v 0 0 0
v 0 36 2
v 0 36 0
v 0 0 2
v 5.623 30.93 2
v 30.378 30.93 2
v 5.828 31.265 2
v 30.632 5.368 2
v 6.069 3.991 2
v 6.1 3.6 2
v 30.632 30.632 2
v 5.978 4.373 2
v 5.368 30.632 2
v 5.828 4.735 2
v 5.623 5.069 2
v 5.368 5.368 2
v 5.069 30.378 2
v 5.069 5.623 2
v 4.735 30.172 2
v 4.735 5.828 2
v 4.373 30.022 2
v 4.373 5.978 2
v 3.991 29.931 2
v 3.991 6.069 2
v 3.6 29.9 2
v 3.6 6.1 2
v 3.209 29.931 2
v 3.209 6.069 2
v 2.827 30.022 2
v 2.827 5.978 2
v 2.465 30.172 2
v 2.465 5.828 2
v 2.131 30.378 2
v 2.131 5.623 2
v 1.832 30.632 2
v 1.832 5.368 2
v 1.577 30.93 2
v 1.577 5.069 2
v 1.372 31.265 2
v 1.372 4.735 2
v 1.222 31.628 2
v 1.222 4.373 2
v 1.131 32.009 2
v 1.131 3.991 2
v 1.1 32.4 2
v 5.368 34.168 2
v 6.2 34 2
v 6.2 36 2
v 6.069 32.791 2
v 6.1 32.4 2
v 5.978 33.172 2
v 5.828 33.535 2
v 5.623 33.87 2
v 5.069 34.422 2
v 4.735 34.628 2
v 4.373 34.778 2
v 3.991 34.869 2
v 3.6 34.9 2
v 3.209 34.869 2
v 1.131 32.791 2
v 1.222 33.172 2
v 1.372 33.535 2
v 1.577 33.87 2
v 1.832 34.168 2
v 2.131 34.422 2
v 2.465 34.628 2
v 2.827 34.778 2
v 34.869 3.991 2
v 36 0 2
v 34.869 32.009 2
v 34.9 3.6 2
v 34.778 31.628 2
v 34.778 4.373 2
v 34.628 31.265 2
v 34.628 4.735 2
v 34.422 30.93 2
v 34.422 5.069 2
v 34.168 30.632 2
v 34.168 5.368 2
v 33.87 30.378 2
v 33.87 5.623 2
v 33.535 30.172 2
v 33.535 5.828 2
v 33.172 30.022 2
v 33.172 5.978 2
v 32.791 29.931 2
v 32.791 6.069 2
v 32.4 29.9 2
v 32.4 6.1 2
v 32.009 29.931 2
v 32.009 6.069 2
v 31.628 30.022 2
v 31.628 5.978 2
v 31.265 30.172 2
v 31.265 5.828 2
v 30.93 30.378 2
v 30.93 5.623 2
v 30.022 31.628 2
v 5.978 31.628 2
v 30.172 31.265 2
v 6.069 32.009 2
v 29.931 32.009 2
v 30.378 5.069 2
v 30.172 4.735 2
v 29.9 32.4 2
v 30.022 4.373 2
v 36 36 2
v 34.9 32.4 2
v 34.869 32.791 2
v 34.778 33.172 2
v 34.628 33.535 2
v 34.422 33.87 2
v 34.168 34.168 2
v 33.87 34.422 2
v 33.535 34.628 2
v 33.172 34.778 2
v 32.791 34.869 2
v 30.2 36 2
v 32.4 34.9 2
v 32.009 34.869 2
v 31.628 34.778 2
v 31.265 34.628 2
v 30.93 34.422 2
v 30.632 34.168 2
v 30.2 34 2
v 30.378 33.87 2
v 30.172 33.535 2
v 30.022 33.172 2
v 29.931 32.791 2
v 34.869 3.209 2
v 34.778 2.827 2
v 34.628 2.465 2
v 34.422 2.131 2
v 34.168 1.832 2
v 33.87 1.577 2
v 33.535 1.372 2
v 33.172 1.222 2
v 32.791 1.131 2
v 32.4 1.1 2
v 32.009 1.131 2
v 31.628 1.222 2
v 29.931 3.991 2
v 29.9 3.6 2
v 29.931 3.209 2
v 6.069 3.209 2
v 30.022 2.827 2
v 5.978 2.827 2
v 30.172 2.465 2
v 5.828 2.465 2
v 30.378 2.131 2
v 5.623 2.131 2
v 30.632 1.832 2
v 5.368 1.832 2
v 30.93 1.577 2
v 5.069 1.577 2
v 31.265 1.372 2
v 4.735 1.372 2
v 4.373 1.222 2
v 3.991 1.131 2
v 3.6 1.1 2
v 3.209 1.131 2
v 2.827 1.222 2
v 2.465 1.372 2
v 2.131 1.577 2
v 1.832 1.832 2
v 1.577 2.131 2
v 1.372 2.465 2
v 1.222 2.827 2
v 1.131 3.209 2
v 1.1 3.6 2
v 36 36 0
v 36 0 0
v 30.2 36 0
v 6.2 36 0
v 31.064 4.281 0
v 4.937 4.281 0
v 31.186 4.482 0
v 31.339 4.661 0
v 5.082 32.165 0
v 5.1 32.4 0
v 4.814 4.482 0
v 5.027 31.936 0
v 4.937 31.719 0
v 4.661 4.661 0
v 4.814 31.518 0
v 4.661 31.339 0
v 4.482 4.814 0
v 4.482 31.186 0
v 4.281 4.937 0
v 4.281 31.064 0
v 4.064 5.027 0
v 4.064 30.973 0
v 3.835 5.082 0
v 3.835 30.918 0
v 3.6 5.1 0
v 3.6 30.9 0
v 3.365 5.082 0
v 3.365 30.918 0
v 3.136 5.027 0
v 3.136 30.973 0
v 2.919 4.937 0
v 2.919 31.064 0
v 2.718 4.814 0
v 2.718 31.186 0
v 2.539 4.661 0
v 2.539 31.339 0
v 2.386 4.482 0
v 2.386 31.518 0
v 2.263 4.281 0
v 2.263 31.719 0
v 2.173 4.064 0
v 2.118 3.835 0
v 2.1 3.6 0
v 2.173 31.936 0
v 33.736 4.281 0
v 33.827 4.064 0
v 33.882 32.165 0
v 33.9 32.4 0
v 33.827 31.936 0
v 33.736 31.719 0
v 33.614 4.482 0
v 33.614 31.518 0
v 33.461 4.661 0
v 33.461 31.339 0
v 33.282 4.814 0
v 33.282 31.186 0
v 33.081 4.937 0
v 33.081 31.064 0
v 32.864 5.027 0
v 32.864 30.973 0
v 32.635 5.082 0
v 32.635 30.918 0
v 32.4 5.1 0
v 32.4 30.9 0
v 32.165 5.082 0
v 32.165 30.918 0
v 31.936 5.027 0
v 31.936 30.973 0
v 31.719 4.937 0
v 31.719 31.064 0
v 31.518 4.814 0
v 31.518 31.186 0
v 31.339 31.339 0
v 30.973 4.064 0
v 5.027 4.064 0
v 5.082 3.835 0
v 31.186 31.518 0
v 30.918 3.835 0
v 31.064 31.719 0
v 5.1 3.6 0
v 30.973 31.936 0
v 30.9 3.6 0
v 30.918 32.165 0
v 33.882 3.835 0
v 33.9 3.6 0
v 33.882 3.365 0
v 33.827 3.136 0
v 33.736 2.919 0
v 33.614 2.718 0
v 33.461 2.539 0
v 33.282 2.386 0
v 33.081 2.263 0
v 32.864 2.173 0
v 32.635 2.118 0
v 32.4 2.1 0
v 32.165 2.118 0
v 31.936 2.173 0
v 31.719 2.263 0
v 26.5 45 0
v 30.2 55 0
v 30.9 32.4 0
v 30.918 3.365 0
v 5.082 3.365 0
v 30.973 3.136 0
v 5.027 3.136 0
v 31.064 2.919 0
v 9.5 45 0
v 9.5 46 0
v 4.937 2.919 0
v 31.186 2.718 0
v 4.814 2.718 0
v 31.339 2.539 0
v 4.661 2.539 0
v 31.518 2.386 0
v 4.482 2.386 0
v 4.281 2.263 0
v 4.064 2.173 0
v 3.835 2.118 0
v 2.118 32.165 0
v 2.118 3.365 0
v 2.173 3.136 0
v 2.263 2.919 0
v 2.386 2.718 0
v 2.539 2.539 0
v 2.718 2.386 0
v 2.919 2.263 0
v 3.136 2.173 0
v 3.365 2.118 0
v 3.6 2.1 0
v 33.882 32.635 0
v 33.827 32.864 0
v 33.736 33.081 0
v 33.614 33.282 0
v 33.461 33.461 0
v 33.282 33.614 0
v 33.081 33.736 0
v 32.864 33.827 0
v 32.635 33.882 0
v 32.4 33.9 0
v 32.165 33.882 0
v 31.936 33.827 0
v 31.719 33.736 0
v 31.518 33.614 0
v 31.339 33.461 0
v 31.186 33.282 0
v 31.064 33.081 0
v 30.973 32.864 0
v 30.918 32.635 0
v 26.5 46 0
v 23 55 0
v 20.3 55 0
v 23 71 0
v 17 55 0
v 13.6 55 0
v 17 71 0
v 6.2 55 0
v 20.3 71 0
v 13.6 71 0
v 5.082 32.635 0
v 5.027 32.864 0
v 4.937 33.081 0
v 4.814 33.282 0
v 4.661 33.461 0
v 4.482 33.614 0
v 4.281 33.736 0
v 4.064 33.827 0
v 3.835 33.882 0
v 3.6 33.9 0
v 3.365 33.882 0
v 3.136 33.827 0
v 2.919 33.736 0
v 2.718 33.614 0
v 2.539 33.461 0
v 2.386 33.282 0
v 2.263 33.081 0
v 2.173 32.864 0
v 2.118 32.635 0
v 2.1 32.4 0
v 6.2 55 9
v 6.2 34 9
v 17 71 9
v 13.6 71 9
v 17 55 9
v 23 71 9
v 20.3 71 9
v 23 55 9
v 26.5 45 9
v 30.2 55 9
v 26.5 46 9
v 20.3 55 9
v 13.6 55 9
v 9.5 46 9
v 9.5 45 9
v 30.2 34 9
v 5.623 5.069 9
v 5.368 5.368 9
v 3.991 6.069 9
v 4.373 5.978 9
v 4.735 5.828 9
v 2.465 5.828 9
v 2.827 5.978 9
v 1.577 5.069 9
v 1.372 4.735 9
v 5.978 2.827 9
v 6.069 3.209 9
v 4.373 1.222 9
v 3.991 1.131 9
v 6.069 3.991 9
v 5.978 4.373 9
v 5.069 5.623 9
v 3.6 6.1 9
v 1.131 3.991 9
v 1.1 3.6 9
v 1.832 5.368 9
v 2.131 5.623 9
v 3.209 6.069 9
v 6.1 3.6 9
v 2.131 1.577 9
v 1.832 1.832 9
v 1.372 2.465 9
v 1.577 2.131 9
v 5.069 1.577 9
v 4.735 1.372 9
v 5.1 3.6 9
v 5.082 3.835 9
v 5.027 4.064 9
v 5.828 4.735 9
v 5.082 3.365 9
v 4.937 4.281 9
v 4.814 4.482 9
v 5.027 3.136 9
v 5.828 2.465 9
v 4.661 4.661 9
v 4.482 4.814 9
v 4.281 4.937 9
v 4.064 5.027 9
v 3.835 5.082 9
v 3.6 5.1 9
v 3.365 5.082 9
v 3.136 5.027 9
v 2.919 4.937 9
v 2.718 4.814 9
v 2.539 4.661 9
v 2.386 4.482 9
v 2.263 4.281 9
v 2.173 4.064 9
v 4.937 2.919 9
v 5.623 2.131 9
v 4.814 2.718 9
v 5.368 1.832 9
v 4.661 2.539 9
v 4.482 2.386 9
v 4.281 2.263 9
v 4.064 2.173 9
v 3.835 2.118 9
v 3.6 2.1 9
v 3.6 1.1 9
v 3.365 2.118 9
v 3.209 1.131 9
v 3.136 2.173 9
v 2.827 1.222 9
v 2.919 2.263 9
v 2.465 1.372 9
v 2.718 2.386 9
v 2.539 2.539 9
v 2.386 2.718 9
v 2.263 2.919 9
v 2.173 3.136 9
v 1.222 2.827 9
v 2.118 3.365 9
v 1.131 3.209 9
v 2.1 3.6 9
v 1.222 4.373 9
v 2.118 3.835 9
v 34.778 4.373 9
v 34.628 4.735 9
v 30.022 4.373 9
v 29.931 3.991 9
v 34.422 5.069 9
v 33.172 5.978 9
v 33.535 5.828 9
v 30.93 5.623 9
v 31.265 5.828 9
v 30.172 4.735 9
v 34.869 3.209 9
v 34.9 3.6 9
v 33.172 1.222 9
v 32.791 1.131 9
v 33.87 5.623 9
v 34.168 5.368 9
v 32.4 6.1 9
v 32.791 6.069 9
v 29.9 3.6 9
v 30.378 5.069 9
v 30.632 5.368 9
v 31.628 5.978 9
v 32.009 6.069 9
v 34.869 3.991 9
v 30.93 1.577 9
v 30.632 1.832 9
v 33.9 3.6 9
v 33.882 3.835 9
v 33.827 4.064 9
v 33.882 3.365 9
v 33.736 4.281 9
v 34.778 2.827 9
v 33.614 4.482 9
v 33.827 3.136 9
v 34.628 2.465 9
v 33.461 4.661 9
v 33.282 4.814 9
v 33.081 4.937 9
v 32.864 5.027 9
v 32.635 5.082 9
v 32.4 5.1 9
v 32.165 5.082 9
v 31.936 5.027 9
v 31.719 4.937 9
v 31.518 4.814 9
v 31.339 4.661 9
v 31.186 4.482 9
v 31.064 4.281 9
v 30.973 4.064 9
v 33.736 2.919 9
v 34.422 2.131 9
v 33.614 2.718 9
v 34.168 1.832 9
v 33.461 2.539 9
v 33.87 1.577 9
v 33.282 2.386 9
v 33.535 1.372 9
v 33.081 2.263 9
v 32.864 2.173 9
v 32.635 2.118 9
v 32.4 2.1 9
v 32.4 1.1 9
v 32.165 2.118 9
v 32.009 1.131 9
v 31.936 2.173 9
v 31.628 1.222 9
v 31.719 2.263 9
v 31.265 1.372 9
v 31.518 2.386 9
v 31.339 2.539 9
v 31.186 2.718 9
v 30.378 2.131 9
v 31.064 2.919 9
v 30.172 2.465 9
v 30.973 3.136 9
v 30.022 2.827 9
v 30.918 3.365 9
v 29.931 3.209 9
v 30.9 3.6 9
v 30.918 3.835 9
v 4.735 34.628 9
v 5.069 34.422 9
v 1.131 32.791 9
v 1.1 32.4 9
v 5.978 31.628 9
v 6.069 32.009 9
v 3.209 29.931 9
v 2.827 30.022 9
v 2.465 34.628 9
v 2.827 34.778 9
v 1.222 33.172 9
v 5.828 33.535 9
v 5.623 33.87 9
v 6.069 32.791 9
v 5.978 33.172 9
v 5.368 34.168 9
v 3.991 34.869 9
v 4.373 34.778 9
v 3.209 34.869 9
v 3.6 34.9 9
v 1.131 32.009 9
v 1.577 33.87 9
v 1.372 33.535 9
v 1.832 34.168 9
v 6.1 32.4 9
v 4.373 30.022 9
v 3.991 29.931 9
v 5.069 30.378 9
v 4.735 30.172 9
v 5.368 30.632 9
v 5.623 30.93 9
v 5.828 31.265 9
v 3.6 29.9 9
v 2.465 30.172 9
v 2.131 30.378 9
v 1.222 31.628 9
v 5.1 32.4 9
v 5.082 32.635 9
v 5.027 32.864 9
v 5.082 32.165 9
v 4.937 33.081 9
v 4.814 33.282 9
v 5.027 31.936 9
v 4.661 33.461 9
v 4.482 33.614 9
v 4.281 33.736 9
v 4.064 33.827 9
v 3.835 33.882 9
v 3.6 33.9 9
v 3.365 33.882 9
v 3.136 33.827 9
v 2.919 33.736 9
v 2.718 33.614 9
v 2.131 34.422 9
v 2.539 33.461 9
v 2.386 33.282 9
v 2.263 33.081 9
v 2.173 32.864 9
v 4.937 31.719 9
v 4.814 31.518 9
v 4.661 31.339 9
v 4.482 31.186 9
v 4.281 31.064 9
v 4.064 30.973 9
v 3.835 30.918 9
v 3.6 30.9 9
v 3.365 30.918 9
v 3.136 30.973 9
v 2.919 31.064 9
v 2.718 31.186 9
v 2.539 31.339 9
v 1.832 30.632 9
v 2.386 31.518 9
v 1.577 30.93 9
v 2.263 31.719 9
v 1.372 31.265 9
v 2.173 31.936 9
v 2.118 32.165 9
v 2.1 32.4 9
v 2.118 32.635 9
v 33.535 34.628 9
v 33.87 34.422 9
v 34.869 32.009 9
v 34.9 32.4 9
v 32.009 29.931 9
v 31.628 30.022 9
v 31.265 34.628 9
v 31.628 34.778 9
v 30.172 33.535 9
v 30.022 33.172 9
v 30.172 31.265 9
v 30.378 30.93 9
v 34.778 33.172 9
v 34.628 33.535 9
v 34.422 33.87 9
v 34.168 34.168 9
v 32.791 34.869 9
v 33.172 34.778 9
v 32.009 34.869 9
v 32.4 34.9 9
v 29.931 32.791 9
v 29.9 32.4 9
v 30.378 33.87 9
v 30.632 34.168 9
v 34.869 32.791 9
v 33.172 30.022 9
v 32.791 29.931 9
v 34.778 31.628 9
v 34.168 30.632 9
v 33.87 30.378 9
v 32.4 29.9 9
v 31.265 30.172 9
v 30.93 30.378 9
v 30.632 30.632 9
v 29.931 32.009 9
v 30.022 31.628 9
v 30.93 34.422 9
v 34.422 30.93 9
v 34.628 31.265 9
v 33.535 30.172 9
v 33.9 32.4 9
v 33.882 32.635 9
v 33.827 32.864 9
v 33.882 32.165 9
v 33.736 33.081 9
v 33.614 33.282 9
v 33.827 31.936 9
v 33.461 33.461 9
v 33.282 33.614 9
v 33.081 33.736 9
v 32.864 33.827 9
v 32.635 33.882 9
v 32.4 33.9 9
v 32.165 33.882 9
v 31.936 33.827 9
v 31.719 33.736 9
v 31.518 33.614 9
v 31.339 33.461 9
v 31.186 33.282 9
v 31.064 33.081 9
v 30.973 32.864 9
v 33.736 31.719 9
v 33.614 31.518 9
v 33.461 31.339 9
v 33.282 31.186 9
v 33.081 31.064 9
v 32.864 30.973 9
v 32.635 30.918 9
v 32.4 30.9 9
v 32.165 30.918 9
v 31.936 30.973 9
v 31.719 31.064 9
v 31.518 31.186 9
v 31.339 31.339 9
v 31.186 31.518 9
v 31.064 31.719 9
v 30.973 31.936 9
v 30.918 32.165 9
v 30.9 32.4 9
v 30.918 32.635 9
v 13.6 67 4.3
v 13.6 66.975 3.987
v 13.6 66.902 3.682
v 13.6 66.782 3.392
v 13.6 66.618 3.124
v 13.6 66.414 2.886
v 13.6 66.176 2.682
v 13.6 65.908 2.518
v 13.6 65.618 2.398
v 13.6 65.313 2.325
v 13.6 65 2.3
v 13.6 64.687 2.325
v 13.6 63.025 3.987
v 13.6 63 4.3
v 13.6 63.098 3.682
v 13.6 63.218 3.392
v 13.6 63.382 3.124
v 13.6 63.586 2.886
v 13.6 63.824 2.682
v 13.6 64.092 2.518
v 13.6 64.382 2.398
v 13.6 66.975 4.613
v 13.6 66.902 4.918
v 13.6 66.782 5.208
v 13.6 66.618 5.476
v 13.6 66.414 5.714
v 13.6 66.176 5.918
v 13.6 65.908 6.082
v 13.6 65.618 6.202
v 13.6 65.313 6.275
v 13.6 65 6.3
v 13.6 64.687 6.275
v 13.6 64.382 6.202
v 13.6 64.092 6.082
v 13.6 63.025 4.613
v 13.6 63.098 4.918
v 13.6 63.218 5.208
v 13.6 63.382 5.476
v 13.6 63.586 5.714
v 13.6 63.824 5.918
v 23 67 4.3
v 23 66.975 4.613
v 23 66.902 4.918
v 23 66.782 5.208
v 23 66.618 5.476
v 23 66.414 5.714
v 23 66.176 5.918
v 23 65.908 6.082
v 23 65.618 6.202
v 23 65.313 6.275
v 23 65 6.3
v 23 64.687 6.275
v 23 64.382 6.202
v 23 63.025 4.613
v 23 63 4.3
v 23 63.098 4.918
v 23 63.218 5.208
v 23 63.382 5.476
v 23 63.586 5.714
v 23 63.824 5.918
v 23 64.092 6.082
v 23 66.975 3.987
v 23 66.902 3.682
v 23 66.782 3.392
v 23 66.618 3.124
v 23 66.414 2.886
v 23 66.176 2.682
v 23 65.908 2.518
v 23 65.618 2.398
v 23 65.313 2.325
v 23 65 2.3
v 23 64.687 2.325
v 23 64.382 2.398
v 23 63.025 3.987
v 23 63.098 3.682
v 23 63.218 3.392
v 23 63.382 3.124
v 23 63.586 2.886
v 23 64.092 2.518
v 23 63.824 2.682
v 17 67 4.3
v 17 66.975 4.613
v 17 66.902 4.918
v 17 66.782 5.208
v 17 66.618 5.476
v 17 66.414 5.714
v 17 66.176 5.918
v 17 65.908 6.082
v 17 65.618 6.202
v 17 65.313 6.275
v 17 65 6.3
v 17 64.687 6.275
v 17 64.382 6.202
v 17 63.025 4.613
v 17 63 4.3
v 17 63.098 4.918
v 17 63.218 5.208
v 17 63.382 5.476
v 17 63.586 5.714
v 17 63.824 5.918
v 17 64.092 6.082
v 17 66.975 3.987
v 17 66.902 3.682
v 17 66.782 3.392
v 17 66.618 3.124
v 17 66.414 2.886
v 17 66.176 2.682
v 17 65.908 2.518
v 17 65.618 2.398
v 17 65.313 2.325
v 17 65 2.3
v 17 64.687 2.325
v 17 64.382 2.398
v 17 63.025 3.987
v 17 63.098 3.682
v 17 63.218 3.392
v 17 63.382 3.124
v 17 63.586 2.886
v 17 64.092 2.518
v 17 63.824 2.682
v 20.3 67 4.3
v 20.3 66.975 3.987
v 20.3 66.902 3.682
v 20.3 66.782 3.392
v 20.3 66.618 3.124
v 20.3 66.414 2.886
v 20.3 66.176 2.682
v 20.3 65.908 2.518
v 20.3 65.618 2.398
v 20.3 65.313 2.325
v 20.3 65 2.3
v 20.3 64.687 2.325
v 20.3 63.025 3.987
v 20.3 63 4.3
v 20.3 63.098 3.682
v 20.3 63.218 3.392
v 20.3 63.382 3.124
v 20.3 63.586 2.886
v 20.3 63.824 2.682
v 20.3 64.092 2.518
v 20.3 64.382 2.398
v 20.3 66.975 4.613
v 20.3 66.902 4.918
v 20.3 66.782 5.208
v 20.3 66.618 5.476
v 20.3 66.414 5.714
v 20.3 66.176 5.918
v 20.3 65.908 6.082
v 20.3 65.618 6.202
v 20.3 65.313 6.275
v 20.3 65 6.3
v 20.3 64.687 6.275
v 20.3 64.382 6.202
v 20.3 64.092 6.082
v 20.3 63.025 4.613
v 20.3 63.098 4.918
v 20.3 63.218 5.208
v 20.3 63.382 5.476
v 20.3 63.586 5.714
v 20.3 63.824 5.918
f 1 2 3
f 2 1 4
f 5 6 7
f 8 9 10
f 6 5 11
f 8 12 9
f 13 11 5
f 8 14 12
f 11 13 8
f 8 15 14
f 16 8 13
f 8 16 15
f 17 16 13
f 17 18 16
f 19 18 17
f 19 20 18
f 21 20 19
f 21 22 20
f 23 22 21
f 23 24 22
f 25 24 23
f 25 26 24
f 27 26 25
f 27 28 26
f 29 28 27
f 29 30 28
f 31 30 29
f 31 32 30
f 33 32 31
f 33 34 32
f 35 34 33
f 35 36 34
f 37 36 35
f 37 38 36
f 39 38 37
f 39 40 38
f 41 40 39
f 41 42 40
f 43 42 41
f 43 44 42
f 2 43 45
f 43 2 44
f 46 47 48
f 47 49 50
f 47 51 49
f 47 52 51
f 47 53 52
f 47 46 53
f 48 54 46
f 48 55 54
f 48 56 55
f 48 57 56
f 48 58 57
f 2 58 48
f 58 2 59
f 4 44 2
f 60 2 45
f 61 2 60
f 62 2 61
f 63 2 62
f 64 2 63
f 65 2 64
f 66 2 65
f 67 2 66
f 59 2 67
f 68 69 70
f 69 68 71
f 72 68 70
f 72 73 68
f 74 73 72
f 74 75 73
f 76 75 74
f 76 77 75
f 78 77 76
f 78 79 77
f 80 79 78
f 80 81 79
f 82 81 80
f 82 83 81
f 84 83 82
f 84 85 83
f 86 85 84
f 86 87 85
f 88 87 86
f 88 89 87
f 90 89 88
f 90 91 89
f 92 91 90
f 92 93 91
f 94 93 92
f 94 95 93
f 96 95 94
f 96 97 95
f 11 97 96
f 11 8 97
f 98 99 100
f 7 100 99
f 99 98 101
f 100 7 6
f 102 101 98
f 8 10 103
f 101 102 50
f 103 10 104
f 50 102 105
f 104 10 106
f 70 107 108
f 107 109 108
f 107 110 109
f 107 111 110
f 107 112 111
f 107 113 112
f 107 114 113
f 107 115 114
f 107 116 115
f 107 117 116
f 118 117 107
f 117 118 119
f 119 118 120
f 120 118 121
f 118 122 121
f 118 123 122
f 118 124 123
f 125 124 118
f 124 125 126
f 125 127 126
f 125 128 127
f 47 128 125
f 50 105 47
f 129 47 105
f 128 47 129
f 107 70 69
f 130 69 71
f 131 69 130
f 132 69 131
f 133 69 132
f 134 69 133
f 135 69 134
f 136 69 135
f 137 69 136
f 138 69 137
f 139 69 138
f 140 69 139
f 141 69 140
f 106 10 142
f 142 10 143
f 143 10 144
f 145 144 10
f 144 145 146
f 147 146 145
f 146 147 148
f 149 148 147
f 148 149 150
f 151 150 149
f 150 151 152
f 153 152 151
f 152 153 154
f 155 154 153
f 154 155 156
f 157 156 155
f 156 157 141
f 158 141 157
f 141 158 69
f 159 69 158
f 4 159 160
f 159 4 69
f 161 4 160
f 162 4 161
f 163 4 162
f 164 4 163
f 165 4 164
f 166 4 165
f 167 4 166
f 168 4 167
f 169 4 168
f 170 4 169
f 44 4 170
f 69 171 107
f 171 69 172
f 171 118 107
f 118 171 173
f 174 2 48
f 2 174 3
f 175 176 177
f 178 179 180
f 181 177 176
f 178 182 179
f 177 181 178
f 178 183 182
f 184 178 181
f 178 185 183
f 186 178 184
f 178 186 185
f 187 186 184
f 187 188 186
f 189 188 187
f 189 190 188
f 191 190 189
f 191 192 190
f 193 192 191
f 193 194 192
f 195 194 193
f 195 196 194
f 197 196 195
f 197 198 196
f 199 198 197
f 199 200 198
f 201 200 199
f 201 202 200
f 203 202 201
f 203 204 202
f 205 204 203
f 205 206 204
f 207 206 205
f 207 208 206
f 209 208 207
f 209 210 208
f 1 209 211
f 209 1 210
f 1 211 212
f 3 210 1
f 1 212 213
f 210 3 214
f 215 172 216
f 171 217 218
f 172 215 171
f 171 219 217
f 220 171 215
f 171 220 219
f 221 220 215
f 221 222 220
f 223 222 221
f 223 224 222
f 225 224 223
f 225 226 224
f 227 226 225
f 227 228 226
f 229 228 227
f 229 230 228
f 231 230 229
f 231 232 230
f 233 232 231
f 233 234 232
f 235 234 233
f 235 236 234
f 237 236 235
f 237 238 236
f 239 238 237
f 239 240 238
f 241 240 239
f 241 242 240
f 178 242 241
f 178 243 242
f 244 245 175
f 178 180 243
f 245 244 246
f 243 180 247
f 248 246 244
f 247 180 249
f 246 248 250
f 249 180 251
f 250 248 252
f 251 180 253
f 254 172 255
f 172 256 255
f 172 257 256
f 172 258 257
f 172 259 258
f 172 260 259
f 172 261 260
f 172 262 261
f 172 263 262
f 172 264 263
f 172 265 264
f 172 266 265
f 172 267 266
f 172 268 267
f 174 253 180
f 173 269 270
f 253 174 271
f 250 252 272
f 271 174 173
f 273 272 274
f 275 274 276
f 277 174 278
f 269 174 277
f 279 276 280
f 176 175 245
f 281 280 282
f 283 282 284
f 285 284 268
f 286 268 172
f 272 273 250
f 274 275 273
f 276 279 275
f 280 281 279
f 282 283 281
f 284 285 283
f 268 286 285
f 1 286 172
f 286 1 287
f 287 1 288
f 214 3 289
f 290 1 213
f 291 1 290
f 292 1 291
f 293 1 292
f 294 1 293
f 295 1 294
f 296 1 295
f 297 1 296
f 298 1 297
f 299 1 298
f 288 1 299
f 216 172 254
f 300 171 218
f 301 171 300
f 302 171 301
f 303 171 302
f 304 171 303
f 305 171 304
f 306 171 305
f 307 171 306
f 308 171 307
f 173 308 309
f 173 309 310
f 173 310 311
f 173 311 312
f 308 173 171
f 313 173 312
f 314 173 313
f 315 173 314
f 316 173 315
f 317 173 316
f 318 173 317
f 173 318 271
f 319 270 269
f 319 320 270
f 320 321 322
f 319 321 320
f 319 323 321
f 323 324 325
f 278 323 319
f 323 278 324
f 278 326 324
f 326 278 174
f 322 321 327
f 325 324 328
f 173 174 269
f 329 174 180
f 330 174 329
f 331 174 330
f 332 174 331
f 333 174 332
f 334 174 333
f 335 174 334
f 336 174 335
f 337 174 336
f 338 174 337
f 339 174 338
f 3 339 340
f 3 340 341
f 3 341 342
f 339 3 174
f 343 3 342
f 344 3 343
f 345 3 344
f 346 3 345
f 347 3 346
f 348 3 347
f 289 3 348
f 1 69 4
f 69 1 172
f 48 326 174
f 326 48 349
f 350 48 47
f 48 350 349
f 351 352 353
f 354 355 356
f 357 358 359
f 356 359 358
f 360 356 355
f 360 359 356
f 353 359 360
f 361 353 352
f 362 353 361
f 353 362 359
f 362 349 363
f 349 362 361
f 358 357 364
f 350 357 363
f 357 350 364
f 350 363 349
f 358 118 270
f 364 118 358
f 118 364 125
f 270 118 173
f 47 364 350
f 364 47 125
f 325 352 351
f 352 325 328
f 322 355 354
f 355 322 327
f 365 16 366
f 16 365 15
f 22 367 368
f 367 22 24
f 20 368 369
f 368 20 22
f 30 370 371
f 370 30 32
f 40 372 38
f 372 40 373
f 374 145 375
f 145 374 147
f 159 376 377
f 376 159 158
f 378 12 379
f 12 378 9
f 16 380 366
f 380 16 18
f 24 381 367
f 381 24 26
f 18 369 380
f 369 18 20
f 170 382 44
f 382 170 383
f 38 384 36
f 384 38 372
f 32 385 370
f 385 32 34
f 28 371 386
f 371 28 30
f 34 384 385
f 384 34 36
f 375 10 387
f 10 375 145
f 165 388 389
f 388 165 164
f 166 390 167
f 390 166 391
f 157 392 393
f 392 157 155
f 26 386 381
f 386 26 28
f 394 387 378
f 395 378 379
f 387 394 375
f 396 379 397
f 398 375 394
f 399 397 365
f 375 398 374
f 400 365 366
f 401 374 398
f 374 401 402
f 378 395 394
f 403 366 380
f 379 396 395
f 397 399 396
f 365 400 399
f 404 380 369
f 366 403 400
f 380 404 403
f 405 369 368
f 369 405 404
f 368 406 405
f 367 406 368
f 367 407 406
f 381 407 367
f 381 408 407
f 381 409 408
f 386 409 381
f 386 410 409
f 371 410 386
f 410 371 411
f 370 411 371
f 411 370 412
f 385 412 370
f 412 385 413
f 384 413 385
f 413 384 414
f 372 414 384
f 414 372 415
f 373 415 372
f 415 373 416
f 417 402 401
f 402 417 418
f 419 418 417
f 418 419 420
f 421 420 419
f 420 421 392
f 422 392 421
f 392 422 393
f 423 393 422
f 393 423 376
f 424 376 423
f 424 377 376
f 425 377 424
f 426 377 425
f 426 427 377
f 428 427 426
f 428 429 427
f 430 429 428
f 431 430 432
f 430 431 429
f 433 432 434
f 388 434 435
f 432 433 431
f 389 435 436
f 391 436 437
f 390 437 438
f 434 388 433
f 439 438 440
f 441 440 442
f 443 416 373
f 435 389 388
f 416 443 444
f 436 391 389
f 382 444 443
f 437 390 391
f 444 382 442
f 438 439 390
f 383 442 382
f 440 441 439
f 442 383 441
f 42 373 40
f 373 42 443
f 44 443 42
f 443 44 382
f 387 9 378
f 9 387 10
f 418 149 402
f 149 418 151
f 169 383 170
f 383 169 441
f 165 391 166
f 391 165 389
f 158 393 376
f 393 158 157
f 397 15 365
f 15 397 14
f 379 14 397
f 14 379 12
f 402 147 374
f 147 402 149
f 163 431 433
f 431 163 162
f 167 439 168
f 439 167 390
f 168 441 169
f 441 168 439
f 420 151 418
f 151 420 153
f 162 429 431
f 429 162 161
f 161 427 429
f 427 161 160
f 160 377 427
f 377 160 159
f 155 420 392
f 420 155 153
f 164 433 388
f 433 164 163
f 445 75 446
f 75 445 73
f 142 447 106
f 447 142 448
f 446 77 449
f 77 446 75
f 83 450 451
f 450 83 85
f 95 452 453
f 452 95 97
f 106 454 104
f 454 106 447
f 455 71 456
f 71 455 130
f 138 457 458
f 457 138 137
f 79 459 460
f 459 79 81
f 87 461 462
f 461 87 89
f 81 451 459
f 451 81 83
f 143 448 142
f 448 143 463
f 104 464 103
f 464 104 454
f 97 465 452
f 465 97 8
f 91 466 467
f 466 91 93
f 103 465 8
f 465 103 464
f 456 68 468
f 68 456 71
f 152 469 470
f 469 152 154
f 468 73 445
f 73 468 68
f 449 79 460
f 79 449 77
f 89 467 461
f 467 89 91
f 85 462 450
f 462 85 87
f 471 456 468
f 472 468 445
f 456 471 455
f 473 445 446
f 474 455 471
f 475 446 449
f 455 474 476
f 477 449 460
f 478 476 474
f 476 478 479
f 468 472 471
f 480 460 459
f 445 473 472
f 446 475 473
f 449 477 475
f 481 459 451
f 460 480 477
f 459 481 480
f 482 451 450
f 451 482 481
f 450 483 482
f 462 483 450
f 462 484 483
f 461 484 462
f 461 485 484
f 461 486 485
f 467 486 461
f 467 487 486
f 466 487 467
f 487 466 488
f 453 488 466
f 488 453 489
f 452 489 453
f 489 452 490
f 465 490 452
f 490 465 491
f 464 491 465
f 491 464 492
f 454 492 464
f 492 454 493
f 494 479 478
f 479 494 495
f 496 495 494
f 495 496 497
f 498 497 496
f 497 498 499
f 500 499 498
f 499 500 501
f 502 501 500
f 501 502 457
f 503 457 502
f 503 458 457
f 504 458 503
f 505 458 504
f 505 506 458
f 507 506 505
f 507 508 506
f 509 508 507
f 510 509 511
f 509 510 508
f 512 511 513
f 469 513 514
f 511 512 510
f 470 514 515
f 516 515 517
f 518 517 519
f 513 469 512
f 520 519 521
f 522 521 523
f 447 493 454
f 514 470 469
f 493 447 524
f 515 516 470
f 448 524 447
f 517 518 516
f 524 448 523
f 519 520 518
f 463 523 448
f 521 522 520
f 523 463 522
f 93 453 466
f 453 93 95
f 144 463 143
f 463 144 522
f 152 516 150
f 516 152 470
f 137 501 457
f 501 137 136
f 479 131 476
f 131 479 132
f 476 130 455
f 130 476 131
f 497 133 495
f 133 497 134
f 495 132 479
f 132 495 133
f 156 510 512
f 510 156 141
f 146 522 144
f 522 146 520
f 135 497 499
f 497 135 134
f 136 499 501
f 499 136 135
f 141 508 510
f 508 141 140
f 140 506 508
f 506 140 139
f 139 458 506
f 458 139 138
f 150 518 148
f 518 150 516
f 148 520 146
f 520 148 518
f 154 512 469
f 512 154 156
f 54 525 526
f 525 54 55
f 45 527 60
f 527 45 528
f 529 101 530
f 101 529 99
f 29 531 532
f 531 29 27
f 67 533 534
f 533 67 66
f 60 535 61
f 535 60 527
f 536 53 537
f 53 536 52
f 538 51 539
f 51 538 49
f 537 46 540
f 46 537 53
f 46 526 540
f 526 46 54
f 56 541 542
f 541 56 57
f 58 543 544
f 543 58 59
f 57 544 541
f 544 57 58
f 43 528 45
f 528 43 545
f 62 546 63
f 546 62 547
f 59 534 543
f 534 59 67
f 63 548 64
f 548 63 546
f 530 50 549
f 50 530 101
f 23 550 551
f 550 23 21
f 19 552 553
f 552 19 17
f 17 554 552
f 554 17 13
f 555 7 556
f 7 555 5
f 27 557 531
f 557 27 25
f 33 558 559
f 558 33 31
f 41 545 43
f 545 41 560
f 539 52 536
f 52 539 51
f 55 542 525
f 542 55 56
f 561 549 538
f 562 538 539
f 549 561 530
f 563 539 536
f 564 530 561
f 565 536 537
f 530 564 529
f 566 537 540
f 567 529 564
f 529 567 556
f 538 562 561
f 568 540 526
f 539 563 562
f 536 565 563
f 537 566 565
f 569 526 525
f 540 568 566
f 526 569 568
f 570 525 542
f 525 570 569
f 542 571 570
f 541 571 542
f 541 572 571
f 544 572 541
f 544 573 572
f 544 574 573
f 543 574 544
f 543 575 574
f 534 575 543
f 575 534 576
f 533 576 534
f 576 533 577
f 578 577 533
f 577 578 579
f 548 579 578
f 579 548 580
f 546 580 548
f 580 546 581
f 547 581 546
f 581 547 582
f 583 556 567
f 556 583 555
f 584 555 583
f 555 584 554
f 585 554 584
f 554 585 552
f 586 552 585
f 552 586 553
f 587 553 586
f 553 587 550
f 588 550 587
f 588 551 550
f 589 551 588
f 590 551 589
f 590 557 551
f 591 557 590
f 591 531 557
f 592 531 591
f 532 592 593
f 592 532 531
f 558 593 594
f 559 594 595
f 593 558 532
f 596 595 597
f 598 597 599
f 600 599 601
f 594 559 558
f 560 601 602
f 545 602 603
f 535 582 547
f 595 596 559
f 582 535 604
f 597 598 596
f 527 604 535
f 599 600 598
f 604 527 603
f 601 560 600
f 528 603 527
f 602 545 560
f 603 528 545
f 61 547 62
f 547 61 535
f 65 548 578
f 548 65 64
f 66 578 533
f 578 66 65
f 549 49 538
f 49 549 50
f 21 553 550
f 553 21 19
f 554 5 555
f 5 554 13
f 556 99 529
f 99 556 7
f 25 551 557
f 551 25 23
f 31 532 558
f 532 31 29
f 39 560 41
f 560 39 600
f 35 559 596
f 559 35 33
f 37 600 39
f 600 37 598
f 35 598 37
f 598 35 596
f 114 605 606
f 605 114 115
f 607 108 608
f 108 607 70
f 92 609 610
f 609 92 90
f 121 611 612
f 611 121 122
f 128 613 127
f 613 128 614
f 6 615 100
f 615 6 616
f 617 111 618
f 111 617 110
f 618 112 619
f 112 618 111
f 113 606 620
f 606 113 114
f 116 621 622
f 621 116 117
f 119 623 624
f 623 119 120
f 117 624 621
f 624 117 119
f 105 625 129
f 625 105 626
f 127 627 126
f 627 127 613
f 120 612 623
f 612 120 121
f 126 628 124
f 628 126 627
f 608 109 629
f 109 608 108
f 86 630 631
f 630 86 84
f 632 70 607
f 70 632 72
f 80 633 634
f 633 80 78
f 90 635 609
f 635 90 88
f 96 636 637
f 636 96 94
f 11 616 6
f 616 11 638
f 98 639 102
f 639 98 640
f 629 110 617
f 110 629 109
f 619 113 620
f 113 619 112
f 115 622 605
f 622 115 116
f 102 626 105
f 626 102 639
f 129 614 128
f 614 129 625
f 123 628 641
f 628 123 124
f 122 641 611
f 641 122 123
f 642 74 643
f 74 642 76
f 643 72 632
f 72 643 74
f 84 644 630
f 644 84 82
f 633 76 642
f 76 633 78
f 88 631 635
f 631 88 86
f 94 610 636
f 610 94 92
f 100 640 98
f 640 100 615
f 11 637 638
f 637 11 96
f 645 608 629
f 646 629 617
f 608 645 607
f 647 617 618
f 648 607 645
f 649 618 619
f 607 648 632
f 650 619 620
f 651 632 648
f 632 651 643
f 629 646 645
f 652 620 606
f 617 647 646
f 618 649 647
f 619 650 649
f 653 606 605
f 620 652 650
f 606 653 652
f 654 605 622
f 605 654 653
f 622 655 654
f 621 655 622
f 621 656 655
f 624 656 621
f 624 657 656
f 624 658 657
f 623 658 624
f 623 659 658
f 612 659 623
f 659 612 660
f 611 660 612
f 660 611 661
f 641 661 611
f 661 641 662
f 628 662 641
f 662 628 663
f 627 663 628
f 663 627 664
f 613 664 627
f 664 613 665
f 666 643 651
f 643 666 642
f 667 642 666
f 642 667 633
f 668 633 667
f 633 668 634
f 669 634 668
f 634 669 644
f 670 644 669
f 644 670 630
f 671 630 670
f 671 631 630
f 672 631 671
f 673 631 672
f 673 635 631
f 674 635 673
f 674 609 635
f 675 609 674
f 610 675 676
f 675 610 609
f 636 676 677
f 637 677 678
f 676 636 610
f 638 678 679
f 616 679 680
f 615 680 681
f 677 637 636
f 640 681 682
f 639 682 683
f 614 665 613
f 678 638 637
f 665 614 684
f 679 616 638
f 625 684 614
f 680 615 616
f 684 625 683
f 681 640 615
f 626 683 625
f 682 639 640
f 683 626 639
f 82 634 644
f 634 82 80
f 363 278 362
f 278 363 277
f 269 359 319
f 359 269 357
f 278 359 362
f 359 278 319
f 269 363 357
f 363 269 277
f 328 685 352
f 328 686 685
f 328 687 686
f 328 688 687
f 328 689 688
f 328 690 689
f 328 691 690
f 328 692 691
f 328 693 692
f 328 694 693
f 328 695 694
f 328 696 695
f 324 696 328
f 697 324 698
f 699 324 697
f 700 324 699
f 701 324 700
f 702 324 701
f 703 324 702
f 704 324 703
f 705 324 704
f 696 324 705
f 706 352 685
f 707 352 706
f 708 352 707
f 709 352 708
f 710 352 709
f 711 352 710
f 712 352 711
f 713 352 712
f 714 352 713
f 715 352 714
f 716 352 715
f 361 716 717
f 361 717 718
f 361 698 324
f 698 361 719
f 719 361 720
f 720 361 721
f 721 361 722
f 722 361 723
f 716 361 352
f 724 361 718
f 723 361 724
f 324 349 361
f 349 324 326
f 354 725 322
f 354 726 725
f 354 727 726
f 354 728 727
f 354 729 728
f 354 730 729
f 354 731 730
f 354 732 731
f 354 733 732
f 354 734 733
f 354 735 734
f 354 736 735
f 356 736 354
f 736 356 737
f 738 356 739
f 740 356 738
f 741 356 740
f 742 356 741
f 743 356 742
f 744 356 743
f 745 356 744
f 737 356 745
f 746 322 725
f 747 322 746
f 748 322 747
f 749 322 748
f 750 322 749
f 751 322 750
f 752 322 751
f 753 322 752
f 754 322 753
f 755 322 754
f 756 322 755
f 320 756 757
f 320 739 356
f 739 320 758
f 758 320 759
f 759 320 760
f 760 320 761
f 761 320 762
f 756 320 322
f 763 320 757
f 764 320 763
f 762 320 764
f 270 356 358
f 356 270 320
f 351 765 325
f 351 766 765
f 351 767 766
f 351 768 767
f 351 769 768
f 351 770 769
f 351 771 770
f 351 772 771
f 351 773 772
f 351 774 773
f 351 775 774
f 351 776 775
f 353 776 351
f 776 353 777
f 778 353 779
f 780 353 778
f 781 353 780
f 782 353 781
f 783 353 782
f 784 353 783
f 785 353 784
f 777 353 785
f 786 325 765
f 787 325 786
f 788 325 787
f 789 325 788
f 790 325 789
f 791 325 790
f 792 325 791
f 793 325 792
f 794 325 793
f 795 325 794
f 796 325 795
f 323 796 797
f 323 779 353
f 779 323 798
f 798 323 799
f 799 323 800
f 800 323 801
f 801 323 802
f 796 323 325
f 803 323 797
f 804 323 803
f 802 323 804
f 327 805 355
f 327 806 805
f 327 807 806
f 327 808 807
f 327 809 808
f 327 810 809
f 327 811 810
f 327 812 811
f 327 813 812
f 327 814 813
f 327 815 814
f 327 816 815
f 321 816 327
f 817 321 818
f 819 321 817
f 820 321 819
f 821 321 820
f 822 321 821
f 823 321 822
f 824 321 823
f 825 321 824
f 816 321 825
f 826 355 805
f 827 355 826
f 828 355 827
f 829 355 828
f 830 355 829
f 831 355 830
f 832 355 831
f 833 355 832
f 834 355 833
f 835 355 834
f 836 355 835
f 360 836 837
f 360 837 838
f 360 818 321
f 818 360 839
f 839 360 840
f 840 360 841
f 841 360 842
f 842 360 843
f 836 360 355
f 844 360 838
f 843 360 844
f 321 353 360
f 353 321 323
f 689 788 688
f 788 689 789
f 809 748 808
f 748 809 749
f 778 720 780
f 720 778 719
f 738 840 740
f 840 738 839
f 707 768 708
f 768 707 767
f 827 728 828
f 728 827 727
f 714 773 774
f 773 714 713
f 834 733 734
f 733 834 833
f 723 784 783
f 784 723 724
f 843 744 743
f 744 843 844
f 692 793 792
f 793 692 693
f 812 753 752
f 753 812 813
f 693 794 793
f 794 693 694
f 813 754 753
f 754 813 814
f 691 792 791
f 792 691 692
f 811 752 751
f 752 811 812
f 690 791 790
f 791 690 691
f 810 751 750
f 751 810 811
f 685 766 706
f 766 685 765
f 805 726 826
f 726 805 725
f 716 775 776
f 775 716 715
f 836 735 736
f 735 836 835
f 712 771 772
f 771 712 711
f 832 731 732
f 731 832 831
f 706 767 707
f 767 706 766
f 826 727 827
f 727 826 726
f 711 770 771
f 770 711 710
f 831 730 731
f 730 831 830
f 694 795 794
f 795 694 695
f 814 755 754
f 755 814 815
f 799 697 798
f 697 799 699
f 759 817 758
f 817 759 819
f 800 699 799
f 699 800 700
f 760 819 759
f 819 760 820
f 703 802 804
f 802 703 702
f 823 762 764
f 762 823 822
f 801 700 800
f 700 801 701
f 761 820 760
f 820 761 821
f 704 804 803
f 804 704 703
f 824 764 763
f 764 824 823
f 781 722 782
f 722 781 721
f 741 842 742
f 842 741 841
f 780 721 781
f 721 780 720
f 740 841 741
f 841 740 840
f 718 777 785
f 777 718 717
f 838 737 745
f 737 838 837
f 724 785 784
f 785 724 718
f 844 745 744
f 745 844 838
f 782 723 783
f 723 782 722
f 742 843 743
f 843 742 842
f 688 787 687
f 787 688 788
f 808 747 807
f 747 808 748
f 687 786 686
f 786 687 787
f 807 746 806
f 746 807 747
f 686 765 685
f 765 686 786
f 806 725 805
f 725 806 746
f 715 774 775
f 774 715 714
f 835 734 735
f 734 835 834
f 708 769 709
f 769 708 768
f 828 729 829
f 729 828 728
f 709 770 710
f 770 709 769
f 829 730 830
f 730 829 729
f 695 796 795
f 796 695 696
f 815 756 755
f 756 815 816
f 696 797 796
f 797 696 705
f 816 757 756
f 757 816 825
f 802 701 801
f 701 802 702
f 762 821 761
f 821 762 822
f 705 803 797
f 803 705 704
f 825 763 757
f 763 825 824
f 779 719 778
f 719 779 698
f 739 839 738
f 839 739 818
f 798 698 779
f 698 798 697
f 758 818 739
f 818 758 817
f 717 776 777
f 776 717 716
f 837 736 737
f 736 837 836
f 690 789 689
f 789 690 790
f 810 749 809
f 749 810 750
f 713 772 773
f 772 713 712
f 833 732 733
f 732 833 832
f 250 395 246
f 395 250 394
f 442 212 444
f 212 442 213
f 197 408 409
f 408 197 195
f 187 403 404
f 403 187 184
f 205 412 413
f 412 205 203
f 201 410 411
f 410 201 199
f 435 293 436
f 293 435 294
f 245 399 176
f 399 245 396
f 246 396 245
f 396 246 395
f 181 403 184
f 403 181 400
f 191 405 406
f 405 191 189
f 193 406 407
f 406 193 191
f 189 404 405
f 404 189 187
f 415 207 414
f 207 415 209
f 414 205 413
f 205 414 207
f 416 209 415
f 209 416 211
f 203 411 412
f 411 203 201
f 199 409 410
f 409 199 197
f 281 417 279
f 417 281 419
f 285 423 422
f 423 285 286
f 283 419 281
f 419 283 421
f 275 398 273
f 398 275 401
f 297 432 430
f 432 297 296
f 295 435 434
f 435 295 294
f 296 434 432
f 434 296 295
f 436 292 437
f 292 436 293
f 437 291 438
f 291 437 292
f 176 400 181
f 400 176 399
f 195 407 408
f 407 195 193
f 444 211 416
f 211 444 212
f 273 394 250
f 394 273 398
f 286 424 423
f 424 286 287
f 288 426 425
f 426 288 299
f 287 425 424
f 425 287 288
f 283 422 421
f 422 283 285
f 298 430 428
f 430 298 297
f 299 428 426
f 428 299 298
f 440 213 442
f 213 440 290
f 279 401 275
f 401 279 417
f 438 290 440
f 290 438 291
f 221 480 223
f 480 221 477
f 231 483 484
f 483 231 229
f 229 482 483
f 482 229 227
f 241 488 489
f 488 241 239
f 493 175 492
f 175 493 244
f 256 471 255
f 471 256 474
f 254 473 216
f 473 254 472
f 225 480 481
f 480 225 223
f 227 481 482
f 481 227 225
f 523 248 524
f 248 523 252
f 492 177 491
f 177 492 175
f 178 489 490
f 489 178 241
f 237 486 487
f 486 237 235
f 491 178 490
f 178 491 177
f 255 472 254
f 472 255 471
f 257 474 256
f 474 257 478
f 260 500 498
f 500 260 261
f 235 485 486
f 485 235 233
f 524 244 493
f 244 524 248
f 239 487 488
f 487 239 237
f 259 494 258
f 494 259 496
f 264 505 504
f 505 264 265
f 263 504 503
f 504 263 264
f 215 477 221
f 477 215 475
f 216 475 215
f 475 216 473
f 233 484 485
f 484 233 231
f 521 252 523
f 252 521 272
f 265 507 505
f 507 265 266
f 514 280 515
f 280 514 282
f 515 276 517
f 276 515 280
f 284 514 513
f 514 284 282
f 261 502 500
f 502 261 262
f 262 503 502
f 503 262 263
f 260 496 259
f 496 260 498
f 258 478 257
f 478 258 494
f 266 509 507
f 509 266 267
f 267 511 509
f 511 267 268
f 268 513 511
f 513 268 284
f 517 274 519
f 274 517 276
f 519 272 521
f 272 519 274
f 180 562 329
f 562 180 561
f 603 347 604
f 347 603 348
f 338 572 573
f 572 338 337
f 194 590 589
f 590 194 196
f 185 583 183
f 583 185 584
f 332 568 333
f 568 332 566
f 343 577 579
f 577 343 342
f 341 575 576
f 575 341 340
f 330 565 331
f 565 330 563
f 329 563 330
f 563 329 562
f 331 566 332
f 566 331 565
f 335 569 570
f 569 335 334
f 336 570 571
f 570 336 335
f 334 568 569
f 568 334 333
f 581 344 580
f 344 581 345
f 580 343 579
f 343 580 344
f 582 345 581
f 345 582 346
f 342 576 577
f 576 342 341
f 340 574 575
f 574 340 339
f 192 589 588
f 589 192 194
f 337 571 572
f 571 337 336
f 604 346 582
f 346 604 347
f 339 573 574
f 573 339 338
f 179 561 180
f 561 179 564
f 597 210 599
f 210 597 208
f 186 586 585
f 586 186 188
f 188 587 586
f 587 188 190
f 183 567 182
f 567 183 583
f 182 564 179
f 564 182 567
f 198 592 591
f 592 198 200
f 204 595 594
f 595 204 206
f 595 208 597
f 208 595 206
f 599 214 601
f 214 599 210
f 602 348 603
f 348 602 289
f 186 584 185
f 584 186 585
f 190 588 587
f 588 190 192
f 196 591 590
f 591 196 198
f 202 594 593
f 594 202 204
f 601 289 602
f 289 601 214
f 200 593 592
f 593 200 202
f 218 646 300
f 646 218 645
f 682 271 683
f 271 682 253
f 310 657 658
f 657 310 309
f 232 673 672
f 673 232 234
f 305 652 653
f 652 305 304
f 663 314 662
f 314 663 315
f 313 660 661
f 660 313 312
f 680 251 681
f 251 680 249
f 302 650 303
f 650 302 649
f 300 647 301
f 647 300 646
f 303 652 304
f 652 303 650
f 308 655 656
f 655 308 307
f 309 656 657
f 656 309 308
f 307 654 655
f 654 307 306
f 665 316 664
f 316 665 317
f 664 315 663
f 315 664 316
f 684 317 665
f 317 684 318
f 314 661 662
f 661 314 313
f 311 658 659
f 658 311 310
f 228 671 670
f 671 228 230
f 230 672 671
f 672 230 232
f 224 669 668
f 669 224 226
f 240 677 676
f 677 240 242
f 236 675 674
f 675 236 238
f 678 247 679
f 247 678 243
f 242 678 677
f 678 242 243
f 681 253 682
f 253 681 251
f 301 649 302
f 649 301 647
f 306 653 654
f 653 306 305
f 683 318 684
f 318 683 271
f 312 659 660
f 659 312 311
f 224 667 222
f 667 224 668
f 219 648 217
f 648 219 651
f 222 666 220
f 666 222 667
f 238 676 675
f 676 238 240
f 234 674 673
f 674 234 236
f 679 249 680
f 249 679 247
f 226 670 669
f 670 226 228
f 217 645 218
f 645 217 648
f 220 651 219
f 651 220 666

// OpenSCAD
$fn=40;
module post() {
    
 difference() {
        cylinder(r=2.5,9);
        cylinder(r=1.5,9);
  } 
}
 
difference() {
    // combine all the solids before deleting
    union() {
        cube([36,36,2]);
        translate([6.2,34,0]) cube([24,37,9]);
        // Mounting pegs
        translate([3.6, 3.6,0 ]) cylinder(r=2.5,9);
        translate([36-3.6, 3.6,0 ]) cylinder(r=2.5,9);
        translate([3.6, 36-3.6,0 ]) cylinder(r=2.5,9);
        translate([36-3.6, 36-3.6,0 ]) cylinder(r=2.5,9);
    }
    // cut cable slit
    translate([9.5,45,0]) cube([17,1,10]);
    // tabs - remove sides
    translate([6.2,55,0]) cube([7.4,17.8,10]);
    translate([23,55,0]) cube([7.4,17.8,10]);
    // remove center - leaving two arms
    translate([17,55,0]) cube([3.3,17.8,10]);
    // punch hole in arms
    translate([10,65,4.3]) rotate([0,90,0]) cylinder(r=2,h=16); 
    // punch mounting holes
    translate([3.6, 3.6,0 ]) cylinder(r=1.5,9);
    translate([36-3.6, 3.6,0 ]) cylinder(r=1.5,9);
    translate([3.6, 36-3.6,0 ]) cylinder(r=1.5,9);
    translate([36-3.6, 36-3.6,0 ]) cylinder(r=1.5,9);

} 

*difference() {
    cube([36,36,2]);
    translate([3.6, 3.6,0 ]) 
    translate([36-3.6, 3.6,0 ]) post();
    translate([3.6, 36-3.6,0 ]) post();
    translate([36-3.6, 36-3.6,0 ]) post();
}
    // swivel tabs
*    translate([6.2,34,0]) difference() {
     cube([24,32,9]);
     // tabs - remove sides
     translate([0,20,0]) cube([7.4,12.8,10]);
     translate([17,20,0]) cube([7.4,12.8,10]);
     // remove center - leaving two tabs
     translate([10,20,0]) cube([3.3,12.8,10]);
     // punch hole in arms
     translate([16,28,4.3]) rotate([0,90,0]) cylinder(r=2,h=26); 
    }
